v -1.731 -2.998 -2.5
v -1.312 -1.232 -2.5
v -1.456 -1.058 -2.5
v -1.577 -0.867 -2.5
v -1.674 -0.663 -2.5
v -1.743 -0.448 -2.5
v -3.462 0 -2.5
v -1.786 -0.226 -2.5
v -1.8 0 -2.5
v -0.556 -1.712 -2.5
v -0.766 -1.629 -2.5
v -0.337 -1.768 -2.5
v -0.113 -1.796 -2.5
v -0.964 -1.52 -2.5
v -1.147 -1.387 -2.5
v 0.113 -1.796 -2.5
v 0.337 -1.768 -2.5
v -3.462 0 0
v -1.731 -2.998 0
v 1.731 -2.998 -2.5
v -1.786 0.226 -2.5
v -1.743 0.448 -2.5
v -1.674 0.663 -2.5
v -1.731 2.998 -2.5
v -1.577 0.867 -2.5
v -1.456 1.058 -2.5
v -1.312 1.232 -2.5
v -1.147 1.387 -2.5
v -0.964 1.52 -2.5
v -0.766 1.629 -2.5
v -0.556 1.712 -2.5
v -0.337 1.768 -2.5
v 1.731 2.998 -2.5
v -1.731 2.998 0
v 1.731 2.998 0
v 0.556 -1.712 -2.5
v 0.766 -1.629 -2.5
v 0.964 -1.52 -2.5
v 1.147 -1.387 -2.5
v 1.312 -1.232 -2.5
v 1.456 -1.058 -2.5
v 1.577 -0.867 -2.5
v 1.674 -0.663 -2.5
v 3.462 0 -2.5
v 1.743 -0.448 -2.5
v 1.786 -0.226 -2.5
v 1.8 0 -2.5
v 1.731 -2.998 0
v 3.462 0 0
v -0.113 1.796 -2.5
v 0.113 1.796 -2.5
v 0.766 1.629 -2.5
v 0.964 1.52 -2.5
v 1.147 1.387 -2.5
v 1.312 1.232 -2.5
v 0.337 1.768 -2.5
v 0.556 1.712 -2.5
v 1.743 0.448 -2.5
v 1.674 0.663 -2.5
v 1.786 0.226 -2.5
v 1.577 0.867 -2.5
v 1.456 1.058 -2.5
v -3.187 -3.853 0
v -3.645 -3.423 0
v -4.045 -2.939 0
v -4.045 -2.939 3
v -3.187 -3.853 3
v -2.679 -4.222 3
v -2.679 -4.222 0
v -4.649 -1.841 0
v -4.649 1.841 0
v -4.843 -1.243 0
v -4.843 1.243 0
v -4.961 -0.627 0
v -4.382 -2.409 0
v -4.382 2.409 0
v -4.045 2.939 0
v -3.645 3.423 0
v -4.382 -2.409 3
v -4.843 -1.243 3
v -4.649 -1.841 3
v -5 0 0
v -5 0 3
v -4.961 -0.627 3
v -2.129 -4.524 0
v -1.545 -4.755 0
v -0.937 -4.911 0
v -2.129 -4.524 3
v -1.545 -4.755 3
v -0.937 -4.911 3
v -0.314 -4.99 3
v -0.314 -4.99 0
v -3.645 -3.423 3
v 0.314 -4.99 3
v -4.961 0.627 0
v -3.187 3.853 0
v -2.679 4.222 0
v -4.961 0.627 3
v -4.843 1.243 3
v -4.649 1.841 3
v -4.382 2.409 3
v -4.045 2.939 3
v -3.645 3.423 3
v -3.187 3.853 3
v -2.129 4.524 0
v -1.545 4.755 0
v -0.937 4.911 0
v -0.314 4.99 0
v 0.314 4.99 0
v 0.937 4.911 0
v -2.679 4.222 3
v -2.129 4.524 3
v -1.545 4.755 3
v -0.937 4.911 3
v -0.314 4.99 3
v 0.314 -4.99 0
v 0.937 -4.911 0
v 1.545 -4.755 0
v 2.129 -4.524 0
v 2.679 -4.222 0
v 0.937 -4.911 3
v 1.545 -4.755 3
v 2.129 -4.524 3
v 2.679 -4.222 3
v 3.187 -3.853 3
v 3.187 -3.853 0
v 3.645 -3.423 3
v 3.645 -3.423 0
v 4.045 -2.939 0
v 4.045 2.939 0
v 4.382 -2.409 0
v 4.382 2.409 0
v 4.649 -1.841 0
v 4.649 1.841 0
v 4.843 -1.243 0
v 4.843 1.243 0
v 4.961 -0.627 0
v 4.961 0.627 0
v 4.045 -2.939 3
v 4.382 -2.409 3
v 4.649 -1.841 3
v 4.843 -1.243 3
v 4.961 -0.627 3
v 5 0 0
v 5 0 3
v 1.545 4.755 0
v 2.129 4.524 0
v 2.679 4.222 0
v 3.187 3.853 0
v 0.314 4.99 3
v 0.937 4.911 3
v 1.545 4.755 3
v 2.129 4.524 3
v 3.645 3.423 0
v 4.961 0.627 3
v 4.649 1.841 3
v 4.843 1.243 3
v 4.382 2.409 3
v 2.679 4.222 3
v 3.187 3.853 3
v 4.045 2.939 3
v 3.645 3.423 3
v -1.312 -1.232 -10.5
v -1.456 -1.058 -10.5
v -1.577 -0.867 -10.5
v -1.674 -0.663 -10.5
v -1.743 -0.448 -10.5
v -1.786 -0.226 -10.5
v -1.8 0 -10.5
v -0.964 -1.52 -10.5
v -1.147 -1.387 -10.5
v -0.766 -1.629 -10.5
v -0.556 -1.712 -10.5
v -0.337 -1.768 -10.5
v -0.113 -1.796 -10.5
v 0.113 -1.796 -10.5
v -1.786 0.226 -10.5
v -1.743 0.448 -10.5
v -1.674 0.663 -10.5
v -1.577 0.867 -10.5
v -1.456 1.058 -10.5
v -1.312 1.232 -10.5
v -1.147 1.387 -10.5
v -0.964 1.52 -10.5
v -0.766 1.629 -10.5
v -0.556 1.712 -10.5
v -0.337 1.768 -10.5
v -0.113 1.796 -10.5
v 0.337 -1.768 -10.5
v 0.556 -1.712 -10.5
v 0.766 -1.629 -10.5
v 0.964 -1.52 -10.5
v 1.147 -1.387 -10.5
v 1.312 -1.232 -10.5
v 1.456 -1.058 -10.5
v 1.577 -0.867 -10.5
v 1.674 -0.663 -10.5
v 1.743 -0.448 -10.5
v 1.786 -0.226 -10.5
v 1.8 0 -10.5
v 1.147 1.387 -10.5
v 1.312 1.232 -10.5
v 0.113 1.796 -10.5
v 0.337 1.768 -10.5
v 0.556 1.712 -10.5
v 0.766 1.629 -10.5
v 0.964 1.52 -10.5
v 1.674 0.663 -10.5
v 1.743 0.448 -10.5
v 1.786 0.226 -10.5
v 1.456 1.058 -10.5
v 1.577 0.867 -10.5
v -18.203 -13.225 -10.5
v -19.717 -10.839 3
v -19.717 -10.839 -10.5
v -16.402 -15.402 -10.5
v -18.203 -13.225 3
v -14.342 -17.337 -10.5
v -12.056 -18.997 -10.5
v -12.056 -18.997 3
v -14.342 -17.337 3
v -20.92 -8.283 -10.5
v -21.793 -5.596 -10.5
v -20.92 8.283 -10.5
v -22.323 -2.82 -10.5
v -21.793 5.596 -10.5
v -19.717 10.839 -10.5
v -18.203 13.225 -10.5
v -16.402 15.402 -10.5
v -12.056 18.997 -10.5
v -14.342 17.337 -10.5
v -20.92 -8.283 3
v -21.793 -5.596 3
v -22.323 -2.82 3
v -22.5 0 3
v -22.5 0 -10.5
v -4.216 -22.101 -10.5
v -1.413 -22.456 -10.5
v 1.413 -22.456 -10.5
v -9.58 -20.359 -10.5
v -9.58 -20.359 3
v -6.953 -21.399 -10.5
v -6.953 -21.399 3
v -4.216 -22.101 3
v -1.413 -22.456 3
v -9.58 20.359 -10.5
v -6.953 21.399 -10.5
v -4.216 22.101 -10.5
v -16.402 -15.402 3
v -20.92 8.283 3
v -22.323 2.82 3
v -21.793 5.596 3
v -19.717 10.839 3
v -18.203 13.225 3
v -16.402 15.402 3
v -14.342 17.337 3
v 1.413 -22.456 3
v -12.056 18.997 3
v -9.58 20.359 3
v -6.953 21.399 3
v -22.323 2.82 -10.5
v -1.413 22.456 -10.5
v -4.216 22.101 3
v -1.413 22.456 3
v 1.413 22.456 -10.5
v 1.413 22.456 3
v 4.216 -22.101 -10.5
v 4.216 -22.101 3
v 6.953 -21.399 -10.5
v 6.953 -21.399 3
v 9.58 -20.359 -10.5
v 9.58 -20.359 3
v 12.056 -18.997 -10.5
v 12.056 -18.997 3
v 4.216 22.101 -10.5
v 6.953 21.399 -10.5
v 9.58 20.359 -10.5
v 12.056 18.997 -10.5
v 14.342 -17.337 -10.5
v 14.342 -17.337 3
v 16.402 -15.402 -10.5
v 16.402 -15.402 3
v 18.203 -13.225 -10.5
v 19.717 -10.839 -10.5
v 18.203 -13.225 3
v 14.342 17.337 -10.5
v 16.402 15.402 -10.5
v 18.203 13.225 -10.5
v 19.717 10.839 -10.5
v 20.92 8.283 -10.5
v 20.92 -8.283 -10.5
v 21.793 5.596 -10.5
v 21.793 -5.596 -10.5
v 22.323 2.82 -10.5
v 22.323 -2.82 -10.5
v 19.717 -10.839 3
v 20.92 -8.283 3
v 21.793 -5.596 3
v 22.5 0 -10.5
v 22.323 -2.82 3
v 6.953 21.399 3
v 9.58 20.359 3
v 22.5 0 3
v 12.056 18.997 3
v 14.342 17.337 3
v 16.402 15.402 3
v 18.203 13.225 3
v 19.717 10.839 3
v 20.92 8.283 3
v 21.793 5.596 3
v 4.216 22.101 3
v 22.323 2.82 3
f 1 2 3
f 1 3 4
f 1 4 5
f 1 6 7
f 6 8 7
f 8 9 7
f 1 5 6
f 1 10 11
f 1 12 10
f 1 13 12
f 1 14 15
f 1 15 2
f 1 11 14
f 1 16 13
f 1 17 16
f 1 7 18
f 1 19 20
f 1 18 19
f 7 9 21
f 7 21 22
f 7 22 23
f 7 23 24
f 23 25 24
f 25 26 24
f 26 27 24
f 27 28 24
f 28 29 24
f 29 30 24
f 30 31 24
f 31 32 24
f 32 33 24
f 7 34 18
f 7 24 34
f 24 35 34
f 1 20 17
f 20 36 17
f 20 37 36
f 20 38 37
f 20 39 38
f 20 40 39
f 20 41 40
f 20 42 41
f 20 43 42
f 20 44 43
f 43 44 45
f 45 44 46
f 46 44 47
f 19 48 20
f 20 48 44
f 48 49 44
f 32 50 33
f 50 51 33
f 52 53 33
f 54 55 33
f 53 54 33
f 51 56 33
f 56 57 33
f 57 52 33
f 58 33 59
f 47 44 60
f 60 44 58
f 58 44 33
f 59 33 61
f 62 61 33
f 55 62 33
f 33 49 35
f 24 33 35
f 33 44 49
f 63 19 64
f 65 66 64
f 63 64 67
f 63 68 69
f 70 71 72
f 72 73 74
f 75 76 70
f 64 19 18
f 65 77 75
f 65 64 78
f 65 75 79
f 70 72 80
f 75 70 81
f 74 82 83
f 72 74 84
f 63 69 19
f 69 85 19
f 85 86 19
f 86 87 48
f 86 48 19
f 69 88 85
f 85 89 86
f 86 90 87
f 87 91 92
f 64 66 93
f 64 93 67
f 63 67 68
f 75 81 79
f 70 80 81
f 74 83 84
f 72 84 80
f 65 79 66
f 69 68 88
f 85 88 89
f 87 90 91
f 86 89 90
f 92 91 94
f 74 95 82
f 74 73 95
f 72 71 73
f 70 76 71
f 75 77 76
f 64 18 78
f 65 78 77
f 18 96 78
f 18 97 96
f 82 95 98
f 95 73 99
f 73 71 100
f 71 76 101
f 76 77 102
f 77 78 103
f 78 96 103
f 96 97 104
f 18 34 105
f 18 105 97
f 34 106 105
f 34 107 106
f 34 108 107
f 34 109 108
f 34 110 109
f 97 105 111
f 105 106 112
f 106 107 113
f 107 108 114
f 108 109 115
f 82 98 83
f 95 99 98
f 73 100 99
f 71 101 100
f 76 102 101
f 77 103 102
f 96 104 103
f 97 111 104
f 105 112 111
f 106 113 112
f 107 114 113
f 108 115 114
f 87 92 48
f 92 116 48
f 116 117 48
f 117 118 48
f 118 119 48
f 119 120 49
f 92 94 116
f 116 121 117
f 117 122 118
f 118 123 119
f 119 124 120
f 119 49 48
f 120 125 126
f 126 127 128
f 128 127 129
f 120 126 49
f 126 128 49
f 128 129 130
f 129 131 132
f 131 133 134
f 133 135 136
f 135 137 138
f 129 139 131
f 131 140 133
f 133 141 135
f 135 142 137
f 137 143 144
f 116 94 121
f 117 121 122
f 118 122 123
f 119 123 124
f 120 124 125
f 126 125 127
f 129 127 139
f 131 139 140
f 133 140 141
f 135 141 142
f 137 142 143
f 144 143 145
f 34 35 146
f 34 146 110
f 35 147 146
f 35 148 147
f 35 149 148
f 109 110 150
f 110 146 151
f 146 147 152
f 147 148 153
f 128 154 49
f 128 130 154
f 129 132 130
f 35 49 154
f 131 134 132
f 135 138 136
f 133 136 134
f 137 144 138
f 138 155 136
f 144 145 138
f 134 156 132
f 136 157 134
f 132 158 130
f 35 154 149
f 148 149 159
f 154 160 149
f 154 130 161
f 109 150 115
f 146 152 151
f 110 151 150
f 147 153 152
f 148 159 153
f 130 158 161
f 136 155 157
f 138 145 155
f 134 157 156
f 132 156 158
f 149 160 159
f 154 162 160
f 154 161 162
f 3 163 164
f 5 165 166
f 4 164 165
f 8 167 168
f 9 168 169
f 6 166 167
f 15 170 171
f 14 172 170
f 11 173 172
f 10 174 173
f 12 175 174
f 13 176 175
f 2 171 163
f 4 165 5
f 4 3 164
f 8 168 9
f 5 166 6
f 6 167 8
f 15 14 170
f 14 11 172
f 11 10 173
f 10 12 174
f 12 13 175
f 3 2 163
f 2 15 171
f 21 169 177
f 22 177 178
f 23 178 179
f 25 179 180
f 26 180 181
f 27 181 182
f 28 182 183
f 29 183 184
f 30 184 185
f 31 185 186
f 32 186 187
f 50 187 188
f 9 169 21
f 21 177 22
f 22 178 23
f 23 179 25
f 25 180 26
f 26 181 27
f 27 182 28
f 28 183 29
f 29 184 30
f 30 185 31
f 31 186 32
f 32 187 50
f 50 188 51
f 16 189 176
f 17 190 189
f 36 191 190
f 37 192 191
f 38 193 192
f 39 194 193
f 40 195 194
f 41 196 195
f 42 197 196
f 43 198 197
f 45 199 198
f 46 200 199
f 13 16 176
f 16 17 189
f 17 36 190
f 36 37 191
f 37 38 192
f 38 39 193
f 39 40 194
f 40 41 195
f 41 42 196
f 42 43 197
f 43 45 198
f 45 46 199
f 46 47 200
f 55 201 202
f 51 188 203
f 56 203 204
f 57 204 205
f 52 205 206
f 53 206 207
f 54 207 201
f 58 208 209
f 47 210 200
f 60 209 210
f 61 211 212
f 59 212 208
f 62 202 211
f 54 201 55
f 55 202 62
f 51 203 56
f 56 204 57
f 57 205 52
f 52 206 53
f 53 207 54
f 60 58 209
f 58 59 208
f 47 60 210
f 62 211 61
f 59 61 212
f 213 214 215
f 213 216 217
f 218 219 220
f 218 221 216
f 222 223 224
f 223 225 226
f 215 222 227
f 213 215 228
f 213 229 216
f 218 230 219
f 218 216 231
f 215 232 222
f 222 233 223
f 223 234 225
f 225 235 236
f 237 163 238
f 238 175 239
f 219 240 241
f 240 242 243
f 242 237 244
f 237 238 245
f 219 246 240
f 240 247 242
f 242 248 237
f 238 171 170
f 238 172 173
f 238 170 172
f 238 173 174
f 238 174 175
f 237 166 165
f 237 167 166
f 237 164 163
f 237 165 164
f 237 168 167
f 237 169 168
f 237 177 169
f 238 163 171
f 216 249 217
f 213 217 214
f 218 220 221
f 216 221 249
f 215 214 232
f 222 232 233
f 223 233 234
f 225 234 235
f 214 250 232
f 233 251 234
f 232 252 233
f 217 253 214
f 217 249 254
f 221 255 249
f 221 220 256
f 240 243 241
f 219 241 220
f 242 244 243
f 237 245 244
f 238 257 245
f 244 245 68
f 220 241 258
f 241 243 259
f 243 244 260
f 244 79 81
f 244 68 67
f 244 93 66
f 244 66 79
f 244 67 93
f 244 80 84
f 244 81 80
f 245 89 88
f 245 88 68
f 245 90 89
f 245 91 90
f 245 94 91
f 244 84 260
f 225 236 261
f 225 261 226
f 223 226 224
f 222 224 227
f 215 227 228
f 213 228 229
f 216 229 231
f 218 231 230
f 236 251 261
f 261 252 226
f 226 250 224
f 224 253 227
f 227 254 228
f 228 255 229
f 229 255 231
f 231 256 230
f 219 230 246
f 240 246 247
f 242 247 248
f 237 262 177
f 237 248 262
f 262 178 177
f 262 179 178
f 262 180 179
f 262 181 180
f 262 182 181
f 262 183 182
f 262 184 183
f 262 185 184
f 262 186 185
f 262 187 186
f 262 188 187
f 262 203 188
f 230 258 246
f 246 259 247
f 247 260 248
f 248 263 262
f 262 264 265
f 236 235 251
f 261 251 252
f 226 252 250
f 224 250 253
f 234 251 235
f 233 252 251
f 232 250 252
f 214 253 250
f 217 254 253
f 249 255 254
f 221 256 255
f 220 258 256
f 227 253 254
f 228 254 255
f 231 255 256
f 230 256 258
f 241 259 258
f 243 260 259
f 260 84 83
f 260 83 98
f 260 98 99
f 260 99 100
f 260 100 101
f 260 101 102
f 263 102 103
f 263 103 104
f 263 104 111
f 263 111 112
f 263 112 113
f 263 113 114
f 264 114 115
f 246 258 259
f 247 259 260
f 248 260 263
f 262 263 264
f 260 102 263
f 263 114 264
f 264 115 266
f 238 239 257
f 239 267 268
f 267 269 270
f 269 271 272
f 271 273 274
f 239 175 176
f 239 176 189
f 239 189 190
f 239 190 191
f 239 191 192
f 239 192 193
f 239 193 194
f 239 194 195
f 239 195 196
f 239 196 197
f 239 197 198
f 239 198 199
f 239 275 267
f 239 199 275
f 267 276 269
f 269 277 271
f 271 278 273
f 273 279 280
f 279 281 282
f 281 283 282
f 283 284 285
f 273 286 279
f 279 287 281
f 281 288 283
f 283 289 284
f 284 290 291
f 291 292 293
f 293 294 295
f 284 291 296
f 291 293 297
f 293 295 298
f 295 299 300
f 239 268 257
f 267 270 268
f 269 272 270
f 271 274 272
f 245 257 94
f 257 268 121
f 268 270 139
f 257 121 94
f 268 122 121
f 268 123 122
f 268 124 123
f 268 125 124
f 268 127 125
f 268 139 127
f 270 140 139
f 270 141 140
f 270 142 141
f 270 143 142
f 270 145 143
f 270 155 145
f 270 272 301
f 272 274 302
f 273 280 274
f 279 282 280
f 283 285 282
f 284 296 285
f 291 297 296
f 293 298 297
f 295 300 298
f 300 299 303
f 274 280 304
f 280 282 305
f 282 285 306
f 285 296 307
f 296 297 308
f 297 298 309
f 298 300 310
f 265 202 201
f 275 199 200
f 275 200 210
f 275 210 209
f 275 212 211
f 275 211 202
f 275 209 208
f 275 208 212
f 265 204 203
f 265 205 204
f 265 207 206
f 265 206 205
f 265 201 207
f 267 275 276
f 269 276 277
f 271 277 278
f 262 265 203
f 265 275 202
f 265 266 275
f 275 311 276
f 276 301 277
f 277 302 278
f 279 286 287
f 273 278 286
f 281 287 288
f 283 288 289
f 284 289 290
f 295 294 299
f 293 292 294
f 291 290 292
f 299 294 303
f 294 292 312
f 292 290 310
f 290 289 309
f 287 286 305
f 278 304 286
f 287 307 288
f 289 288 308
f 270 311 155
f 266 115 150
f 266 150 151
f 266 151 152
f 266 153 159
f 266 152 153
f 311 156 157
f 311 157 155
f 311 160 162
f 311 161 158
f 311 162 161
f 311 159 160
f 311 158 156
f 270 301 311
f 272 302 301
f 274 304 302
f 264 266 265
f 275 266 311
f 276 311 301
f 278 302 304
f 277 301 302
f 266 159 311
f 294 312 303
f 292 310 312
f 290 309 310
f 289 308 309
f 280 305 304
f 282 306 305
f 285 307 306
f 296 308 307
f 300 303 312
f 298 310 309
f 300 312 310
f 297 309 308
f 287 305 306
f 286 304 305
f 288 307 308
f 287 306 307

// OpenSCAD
$fn = 50;


difference() {
	union() {
		translate(v = [0, 0, -10.5000000000]) {
			cylinder(h = 13.5000000000, r = 22.5000000000);
		}
	}
	union() {
		translate(v = [0, 0, 0]) {
			rotate(a = [0, 0, 0]) {
				difference() {
					union() {
						translate(v = [0, 0, -2.5000000000]) {
							linear_extrude(height = 2.5000000000) {
								polygon(points = [[3.4620000000, 0.0000000000], [1.7310000000, 2.9981799479], [-1.7310000000, 2.9981799479], [-3.4620000000, 0.0000000000], [-1.7310000000, -2.9981799479], [1.7310000000, -2.9981799479]]);
							}
						}
					}
					union();
				}
			}
		}
		#cylinder(h = 3, r = 5.0000000000);
		#translate(v = [0, 0, -100.0000000000]) {
			cylinder(h = 200, r = 1.8000000000);
		}
	}
}
